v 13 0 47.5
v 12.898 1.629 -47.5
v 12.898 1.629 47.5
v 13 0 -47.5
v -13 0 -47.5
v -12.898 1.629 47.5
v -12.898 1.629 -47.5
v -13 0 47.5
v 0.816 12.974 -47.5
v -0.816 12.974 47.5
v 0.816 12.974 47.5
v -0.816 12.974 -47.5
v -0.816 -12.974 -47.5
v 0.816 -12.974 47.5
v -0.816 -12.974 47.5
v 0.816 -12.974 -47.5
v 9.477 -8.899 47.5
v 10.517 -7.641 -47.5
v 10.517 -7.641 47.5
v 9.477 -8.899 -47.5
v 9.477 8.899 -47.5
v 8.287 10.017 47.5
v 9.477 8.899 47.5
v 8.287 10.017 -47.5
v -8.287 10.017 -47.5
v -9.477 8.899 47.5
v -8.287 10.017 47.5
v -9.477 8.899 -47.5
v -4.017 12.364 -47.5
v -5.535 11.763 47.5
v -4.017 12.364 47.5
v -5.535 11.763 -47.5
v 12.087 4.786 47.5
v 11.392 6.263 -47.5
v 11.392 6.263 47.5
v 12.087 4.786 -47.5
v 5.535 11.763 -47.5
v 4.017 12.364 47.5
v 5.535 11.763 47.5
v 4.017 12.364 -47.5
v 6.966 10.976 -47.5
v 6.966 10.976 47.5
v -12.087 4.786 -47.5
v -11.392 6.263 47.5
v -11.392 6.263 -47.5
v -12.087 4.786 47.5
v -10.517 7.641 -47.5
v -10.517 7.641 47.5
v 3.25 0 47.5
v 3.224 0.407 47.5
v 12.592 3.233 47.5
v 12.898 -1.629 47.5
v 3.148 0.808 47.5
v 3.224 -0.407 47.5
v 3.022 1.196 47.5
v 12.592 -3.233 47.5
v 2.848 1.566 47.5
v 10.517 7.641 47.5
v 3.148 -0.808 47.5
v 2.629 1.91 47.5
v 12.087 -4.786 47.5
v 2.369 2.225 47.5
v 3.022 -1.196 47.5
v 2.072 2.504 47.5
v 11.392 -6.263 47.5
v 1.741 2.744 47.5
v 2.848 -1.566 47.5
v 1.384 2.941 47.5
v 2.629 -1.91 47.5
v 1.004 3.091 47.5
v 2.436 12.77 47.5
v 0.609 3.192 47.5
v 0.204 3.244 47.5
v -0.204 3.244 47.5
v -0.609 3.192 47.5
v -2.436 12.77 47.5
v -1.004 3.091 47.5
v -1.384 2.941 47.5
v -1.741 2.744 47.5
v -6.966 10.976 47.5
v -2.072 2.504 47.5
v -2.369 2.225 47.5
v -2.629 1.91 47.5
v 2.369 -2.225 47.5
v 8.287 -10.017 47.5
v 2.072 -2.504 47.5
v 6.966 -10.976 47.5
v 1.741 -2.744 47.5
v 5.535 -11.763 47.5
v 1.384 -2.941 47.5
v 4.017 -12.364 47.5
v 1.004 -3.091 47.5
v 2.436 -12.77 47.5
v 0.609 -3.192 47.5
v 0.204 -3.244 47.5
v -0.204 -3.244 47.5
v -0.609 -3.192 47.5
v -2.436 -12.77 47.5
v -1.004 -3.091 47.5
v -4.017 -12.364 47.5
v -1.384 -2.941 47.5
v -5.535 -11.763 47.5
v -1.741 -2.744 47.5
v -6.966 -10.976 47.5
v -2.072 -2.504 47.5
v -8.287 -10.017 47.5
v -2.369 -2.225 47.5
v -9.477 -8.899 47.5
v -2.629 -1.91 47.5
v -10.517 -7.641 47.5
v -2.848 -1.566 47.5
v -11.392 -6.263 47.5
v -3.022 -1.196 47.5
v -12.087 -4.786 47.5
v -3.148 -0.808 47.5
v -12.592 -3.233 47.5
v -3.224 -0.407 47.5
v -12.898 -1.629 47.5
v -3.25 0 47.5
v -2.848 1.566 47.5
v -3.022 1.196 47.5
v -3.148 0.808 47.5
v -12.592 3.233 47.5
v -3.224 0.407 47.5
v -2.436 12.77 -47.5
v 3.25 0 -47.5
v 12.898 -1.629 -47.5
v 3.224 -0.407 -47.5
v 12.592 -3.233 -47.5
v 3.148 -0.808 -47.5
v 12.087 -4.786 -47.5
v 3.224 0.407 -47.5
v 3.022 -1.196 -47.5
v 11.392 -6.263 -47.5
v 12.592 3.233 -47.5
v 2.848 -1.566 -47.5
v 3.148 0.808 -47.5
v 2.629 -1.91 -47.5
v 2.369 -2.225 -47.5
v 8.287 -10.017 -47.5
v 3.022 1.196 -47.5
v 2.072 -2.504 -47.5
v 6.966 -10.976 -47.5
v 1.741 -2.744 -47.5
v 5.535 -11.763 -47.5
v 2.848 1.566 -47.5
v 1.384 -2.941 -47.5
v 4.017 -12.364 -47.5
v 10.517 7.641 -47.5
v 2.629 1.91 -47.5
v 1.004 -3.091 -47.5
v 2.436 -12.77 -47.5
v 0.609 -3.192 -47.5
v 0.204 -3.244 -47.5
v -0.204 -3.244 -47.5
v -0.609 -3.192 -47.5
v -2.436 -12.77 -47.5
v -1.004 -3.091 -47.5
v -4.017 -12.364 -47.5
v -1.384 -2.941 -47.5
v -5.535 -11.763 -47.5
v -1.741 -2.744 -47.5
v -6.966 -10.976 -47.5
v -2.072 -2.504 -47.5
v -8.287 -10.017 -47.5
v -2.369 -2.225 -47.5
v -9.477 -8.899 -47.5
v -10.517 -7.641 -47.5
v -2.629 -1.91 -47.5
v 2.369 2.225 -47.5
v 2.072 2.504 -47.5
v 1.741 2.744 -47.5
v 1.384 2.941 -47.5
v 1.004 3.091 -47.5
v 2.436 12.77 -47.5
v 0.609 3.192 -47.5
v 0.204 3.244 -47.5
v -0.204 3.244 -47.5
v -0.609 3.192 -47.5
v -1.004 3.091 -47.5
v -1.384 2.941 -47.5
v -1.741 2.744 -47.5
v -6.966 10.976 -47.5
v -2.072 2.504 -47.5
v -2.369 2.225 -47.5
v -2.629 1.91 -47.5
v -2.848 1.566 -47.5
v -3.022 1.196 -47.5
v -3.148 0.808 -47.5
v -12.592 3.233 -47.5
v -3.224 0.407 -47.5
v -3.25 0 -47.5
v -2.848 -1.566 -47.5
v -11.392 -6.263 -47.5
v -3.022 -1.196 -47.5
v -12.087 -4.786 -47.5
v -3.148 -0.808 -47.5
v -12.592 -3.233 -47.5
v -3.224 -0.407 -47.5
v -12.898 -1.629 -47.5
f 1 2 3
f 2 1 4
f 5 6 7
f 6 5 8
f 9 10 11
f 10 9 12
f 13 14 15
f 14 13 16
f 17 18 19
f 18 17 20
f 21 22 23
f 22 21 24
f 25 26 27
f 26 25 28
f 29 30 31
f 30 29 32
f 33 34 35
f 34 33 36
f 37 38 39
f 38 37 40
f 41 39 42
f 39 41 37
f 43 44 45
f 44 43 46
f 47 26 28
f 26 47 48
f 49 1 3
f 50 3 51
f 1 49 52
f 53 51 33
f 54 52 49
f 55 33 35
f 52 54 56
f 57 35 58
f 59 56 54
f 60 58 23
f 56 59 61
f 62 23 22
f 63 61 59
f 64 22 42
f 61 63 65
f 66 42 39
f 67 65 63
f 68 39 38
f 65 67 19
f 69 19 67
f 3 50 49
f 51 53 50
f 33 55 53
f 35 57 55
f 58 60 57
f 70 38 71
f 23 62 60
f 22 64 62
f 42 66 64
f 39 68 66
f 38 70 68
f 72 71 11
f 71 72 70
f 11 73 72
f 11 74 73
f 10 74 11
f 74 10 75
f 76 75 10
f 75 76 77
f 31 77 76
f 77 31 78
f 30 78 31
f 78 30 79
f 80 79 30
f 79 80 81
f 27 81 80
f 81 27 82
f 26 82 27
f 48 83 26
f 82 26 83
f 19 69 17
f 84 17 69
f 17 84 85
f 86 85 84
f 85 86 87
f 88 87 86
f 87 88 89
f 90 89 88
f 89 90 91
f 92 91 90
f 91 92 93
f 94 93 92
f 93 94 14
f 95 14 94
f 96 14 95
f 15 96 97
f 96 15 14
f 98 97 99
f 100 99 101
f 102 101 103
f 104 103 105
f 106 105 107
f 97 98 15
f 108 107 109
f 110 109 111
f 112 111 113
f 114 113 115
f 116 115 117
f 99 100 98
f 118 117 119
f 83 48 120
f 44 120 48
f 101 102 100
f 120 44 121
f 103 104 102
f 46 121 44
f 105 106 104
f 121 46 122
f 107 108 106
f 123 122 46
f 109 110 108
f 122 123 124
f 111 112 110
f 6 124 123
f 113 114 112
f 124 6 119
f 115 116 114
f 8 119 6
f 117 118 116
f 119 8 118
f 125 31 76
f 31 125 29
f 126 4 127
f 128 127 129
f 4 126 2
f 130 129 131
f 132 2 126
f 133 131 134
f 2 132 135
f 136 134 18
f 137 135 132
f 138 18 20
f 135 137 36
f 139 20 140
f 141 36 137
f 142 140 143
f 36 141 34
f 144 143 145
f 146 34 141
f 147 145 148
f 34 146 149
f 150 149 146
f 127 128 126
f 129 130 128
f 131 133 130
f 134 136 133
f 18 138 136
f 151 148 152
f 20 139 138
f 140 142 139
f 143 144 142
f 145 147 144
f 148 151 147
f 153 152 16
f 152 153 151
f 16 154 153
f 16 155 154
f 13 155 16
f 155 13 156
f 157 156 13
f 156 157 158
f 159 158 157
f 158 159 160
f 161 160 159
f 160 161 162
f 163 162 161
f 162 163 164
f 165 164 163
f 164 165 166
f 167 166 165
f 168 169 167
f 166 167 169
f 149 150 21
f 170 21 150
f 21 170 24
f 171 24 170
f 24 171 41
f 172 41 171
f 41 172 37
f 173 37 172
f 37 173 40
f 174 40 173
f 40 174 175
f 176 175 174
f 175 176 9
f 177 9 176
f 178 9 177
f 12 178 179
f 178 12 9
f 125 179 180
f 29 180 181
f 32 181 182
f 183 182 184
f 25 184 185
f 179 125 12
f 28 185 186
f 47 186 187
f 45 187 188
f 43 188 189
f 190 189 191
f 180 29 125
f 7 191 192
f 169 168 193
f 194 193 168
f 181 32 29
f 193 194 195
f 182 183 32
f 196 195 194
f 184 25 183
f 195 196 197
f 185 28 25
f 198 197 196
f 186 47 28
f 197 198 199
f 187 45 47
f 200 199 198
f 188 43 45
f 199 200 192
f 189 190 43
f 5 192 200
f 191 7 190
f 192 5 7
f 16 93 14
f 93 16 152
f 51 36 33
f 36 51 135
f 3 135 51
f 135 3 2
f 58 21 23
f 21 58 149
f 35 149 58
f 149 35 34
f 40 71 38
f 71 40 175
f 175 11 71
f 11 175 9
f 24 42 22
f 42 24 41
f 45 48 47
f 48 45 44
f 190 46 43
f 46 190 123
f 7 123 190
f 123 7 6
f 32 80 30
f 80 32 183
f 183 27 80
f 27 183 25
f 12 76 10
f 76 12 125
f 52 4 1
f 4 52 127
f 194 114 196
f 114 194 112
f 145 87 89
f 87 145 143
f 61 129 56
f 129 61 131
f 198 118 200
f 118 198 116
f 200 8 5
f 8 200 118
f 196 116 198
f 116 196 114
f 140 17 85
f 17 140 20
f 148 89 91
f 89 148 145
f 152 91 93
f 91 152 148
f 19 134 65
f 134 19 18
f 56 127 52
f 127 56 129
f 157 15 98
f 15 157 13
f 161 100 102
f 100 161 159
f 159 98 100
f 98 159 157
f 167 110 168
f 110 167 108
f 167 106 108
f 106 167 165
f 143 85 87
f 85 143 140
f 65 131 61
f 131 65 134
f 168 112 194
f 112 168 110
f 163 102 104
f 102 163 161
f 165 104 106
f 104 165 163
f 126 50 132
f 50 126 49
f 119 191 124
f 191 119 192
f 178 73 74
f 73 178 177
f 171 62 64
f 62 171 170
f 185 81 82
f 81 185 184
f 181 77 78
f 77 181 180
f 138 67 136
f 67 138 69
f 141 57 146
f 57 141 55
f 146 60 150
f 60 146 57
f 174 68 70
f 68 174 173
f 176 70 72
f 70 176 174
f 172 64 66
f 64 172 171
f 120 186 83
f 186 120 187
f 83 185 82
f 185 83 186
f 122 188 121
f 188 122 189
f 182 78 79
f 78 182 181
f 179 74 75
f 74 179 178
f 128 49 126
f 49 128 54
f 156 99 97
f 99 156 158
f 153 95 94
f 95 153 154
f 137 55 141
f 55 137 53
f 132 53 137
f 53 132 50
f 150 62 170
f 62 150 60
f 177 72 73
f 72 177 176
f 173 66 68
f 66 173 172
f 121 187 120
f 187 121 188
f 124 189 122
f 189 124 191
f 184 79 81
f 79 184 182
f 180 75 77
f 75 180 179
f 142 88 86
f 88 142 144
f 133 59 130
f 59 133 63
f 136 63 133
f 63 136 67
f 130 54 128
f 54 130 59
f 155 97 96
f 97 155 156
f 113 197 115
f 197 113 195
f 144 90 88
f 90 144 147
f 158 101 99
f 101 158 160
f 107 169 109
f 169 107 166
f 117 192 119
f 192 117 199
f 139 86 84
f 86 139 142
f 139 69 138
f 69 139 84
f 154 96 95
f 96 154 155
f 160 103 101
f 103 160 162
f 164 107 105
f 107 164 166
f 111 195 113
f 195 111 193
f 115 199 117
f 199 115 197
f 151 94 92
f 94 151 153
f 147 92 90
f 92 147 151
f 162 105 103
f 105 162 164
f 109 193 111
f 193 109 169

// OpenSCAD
$fn = 50;


difference() {
	union() {
		translate(v = [0, 0, -47.5000000000]) {
			cylinder(h = 95, r = 13.0000000000);
		}
	}
	union() {
		translate(v = [0, 0, -100.0000000000]) {
			cylinder(h = 200, r = 3.2500000000);
		}
	}
}
